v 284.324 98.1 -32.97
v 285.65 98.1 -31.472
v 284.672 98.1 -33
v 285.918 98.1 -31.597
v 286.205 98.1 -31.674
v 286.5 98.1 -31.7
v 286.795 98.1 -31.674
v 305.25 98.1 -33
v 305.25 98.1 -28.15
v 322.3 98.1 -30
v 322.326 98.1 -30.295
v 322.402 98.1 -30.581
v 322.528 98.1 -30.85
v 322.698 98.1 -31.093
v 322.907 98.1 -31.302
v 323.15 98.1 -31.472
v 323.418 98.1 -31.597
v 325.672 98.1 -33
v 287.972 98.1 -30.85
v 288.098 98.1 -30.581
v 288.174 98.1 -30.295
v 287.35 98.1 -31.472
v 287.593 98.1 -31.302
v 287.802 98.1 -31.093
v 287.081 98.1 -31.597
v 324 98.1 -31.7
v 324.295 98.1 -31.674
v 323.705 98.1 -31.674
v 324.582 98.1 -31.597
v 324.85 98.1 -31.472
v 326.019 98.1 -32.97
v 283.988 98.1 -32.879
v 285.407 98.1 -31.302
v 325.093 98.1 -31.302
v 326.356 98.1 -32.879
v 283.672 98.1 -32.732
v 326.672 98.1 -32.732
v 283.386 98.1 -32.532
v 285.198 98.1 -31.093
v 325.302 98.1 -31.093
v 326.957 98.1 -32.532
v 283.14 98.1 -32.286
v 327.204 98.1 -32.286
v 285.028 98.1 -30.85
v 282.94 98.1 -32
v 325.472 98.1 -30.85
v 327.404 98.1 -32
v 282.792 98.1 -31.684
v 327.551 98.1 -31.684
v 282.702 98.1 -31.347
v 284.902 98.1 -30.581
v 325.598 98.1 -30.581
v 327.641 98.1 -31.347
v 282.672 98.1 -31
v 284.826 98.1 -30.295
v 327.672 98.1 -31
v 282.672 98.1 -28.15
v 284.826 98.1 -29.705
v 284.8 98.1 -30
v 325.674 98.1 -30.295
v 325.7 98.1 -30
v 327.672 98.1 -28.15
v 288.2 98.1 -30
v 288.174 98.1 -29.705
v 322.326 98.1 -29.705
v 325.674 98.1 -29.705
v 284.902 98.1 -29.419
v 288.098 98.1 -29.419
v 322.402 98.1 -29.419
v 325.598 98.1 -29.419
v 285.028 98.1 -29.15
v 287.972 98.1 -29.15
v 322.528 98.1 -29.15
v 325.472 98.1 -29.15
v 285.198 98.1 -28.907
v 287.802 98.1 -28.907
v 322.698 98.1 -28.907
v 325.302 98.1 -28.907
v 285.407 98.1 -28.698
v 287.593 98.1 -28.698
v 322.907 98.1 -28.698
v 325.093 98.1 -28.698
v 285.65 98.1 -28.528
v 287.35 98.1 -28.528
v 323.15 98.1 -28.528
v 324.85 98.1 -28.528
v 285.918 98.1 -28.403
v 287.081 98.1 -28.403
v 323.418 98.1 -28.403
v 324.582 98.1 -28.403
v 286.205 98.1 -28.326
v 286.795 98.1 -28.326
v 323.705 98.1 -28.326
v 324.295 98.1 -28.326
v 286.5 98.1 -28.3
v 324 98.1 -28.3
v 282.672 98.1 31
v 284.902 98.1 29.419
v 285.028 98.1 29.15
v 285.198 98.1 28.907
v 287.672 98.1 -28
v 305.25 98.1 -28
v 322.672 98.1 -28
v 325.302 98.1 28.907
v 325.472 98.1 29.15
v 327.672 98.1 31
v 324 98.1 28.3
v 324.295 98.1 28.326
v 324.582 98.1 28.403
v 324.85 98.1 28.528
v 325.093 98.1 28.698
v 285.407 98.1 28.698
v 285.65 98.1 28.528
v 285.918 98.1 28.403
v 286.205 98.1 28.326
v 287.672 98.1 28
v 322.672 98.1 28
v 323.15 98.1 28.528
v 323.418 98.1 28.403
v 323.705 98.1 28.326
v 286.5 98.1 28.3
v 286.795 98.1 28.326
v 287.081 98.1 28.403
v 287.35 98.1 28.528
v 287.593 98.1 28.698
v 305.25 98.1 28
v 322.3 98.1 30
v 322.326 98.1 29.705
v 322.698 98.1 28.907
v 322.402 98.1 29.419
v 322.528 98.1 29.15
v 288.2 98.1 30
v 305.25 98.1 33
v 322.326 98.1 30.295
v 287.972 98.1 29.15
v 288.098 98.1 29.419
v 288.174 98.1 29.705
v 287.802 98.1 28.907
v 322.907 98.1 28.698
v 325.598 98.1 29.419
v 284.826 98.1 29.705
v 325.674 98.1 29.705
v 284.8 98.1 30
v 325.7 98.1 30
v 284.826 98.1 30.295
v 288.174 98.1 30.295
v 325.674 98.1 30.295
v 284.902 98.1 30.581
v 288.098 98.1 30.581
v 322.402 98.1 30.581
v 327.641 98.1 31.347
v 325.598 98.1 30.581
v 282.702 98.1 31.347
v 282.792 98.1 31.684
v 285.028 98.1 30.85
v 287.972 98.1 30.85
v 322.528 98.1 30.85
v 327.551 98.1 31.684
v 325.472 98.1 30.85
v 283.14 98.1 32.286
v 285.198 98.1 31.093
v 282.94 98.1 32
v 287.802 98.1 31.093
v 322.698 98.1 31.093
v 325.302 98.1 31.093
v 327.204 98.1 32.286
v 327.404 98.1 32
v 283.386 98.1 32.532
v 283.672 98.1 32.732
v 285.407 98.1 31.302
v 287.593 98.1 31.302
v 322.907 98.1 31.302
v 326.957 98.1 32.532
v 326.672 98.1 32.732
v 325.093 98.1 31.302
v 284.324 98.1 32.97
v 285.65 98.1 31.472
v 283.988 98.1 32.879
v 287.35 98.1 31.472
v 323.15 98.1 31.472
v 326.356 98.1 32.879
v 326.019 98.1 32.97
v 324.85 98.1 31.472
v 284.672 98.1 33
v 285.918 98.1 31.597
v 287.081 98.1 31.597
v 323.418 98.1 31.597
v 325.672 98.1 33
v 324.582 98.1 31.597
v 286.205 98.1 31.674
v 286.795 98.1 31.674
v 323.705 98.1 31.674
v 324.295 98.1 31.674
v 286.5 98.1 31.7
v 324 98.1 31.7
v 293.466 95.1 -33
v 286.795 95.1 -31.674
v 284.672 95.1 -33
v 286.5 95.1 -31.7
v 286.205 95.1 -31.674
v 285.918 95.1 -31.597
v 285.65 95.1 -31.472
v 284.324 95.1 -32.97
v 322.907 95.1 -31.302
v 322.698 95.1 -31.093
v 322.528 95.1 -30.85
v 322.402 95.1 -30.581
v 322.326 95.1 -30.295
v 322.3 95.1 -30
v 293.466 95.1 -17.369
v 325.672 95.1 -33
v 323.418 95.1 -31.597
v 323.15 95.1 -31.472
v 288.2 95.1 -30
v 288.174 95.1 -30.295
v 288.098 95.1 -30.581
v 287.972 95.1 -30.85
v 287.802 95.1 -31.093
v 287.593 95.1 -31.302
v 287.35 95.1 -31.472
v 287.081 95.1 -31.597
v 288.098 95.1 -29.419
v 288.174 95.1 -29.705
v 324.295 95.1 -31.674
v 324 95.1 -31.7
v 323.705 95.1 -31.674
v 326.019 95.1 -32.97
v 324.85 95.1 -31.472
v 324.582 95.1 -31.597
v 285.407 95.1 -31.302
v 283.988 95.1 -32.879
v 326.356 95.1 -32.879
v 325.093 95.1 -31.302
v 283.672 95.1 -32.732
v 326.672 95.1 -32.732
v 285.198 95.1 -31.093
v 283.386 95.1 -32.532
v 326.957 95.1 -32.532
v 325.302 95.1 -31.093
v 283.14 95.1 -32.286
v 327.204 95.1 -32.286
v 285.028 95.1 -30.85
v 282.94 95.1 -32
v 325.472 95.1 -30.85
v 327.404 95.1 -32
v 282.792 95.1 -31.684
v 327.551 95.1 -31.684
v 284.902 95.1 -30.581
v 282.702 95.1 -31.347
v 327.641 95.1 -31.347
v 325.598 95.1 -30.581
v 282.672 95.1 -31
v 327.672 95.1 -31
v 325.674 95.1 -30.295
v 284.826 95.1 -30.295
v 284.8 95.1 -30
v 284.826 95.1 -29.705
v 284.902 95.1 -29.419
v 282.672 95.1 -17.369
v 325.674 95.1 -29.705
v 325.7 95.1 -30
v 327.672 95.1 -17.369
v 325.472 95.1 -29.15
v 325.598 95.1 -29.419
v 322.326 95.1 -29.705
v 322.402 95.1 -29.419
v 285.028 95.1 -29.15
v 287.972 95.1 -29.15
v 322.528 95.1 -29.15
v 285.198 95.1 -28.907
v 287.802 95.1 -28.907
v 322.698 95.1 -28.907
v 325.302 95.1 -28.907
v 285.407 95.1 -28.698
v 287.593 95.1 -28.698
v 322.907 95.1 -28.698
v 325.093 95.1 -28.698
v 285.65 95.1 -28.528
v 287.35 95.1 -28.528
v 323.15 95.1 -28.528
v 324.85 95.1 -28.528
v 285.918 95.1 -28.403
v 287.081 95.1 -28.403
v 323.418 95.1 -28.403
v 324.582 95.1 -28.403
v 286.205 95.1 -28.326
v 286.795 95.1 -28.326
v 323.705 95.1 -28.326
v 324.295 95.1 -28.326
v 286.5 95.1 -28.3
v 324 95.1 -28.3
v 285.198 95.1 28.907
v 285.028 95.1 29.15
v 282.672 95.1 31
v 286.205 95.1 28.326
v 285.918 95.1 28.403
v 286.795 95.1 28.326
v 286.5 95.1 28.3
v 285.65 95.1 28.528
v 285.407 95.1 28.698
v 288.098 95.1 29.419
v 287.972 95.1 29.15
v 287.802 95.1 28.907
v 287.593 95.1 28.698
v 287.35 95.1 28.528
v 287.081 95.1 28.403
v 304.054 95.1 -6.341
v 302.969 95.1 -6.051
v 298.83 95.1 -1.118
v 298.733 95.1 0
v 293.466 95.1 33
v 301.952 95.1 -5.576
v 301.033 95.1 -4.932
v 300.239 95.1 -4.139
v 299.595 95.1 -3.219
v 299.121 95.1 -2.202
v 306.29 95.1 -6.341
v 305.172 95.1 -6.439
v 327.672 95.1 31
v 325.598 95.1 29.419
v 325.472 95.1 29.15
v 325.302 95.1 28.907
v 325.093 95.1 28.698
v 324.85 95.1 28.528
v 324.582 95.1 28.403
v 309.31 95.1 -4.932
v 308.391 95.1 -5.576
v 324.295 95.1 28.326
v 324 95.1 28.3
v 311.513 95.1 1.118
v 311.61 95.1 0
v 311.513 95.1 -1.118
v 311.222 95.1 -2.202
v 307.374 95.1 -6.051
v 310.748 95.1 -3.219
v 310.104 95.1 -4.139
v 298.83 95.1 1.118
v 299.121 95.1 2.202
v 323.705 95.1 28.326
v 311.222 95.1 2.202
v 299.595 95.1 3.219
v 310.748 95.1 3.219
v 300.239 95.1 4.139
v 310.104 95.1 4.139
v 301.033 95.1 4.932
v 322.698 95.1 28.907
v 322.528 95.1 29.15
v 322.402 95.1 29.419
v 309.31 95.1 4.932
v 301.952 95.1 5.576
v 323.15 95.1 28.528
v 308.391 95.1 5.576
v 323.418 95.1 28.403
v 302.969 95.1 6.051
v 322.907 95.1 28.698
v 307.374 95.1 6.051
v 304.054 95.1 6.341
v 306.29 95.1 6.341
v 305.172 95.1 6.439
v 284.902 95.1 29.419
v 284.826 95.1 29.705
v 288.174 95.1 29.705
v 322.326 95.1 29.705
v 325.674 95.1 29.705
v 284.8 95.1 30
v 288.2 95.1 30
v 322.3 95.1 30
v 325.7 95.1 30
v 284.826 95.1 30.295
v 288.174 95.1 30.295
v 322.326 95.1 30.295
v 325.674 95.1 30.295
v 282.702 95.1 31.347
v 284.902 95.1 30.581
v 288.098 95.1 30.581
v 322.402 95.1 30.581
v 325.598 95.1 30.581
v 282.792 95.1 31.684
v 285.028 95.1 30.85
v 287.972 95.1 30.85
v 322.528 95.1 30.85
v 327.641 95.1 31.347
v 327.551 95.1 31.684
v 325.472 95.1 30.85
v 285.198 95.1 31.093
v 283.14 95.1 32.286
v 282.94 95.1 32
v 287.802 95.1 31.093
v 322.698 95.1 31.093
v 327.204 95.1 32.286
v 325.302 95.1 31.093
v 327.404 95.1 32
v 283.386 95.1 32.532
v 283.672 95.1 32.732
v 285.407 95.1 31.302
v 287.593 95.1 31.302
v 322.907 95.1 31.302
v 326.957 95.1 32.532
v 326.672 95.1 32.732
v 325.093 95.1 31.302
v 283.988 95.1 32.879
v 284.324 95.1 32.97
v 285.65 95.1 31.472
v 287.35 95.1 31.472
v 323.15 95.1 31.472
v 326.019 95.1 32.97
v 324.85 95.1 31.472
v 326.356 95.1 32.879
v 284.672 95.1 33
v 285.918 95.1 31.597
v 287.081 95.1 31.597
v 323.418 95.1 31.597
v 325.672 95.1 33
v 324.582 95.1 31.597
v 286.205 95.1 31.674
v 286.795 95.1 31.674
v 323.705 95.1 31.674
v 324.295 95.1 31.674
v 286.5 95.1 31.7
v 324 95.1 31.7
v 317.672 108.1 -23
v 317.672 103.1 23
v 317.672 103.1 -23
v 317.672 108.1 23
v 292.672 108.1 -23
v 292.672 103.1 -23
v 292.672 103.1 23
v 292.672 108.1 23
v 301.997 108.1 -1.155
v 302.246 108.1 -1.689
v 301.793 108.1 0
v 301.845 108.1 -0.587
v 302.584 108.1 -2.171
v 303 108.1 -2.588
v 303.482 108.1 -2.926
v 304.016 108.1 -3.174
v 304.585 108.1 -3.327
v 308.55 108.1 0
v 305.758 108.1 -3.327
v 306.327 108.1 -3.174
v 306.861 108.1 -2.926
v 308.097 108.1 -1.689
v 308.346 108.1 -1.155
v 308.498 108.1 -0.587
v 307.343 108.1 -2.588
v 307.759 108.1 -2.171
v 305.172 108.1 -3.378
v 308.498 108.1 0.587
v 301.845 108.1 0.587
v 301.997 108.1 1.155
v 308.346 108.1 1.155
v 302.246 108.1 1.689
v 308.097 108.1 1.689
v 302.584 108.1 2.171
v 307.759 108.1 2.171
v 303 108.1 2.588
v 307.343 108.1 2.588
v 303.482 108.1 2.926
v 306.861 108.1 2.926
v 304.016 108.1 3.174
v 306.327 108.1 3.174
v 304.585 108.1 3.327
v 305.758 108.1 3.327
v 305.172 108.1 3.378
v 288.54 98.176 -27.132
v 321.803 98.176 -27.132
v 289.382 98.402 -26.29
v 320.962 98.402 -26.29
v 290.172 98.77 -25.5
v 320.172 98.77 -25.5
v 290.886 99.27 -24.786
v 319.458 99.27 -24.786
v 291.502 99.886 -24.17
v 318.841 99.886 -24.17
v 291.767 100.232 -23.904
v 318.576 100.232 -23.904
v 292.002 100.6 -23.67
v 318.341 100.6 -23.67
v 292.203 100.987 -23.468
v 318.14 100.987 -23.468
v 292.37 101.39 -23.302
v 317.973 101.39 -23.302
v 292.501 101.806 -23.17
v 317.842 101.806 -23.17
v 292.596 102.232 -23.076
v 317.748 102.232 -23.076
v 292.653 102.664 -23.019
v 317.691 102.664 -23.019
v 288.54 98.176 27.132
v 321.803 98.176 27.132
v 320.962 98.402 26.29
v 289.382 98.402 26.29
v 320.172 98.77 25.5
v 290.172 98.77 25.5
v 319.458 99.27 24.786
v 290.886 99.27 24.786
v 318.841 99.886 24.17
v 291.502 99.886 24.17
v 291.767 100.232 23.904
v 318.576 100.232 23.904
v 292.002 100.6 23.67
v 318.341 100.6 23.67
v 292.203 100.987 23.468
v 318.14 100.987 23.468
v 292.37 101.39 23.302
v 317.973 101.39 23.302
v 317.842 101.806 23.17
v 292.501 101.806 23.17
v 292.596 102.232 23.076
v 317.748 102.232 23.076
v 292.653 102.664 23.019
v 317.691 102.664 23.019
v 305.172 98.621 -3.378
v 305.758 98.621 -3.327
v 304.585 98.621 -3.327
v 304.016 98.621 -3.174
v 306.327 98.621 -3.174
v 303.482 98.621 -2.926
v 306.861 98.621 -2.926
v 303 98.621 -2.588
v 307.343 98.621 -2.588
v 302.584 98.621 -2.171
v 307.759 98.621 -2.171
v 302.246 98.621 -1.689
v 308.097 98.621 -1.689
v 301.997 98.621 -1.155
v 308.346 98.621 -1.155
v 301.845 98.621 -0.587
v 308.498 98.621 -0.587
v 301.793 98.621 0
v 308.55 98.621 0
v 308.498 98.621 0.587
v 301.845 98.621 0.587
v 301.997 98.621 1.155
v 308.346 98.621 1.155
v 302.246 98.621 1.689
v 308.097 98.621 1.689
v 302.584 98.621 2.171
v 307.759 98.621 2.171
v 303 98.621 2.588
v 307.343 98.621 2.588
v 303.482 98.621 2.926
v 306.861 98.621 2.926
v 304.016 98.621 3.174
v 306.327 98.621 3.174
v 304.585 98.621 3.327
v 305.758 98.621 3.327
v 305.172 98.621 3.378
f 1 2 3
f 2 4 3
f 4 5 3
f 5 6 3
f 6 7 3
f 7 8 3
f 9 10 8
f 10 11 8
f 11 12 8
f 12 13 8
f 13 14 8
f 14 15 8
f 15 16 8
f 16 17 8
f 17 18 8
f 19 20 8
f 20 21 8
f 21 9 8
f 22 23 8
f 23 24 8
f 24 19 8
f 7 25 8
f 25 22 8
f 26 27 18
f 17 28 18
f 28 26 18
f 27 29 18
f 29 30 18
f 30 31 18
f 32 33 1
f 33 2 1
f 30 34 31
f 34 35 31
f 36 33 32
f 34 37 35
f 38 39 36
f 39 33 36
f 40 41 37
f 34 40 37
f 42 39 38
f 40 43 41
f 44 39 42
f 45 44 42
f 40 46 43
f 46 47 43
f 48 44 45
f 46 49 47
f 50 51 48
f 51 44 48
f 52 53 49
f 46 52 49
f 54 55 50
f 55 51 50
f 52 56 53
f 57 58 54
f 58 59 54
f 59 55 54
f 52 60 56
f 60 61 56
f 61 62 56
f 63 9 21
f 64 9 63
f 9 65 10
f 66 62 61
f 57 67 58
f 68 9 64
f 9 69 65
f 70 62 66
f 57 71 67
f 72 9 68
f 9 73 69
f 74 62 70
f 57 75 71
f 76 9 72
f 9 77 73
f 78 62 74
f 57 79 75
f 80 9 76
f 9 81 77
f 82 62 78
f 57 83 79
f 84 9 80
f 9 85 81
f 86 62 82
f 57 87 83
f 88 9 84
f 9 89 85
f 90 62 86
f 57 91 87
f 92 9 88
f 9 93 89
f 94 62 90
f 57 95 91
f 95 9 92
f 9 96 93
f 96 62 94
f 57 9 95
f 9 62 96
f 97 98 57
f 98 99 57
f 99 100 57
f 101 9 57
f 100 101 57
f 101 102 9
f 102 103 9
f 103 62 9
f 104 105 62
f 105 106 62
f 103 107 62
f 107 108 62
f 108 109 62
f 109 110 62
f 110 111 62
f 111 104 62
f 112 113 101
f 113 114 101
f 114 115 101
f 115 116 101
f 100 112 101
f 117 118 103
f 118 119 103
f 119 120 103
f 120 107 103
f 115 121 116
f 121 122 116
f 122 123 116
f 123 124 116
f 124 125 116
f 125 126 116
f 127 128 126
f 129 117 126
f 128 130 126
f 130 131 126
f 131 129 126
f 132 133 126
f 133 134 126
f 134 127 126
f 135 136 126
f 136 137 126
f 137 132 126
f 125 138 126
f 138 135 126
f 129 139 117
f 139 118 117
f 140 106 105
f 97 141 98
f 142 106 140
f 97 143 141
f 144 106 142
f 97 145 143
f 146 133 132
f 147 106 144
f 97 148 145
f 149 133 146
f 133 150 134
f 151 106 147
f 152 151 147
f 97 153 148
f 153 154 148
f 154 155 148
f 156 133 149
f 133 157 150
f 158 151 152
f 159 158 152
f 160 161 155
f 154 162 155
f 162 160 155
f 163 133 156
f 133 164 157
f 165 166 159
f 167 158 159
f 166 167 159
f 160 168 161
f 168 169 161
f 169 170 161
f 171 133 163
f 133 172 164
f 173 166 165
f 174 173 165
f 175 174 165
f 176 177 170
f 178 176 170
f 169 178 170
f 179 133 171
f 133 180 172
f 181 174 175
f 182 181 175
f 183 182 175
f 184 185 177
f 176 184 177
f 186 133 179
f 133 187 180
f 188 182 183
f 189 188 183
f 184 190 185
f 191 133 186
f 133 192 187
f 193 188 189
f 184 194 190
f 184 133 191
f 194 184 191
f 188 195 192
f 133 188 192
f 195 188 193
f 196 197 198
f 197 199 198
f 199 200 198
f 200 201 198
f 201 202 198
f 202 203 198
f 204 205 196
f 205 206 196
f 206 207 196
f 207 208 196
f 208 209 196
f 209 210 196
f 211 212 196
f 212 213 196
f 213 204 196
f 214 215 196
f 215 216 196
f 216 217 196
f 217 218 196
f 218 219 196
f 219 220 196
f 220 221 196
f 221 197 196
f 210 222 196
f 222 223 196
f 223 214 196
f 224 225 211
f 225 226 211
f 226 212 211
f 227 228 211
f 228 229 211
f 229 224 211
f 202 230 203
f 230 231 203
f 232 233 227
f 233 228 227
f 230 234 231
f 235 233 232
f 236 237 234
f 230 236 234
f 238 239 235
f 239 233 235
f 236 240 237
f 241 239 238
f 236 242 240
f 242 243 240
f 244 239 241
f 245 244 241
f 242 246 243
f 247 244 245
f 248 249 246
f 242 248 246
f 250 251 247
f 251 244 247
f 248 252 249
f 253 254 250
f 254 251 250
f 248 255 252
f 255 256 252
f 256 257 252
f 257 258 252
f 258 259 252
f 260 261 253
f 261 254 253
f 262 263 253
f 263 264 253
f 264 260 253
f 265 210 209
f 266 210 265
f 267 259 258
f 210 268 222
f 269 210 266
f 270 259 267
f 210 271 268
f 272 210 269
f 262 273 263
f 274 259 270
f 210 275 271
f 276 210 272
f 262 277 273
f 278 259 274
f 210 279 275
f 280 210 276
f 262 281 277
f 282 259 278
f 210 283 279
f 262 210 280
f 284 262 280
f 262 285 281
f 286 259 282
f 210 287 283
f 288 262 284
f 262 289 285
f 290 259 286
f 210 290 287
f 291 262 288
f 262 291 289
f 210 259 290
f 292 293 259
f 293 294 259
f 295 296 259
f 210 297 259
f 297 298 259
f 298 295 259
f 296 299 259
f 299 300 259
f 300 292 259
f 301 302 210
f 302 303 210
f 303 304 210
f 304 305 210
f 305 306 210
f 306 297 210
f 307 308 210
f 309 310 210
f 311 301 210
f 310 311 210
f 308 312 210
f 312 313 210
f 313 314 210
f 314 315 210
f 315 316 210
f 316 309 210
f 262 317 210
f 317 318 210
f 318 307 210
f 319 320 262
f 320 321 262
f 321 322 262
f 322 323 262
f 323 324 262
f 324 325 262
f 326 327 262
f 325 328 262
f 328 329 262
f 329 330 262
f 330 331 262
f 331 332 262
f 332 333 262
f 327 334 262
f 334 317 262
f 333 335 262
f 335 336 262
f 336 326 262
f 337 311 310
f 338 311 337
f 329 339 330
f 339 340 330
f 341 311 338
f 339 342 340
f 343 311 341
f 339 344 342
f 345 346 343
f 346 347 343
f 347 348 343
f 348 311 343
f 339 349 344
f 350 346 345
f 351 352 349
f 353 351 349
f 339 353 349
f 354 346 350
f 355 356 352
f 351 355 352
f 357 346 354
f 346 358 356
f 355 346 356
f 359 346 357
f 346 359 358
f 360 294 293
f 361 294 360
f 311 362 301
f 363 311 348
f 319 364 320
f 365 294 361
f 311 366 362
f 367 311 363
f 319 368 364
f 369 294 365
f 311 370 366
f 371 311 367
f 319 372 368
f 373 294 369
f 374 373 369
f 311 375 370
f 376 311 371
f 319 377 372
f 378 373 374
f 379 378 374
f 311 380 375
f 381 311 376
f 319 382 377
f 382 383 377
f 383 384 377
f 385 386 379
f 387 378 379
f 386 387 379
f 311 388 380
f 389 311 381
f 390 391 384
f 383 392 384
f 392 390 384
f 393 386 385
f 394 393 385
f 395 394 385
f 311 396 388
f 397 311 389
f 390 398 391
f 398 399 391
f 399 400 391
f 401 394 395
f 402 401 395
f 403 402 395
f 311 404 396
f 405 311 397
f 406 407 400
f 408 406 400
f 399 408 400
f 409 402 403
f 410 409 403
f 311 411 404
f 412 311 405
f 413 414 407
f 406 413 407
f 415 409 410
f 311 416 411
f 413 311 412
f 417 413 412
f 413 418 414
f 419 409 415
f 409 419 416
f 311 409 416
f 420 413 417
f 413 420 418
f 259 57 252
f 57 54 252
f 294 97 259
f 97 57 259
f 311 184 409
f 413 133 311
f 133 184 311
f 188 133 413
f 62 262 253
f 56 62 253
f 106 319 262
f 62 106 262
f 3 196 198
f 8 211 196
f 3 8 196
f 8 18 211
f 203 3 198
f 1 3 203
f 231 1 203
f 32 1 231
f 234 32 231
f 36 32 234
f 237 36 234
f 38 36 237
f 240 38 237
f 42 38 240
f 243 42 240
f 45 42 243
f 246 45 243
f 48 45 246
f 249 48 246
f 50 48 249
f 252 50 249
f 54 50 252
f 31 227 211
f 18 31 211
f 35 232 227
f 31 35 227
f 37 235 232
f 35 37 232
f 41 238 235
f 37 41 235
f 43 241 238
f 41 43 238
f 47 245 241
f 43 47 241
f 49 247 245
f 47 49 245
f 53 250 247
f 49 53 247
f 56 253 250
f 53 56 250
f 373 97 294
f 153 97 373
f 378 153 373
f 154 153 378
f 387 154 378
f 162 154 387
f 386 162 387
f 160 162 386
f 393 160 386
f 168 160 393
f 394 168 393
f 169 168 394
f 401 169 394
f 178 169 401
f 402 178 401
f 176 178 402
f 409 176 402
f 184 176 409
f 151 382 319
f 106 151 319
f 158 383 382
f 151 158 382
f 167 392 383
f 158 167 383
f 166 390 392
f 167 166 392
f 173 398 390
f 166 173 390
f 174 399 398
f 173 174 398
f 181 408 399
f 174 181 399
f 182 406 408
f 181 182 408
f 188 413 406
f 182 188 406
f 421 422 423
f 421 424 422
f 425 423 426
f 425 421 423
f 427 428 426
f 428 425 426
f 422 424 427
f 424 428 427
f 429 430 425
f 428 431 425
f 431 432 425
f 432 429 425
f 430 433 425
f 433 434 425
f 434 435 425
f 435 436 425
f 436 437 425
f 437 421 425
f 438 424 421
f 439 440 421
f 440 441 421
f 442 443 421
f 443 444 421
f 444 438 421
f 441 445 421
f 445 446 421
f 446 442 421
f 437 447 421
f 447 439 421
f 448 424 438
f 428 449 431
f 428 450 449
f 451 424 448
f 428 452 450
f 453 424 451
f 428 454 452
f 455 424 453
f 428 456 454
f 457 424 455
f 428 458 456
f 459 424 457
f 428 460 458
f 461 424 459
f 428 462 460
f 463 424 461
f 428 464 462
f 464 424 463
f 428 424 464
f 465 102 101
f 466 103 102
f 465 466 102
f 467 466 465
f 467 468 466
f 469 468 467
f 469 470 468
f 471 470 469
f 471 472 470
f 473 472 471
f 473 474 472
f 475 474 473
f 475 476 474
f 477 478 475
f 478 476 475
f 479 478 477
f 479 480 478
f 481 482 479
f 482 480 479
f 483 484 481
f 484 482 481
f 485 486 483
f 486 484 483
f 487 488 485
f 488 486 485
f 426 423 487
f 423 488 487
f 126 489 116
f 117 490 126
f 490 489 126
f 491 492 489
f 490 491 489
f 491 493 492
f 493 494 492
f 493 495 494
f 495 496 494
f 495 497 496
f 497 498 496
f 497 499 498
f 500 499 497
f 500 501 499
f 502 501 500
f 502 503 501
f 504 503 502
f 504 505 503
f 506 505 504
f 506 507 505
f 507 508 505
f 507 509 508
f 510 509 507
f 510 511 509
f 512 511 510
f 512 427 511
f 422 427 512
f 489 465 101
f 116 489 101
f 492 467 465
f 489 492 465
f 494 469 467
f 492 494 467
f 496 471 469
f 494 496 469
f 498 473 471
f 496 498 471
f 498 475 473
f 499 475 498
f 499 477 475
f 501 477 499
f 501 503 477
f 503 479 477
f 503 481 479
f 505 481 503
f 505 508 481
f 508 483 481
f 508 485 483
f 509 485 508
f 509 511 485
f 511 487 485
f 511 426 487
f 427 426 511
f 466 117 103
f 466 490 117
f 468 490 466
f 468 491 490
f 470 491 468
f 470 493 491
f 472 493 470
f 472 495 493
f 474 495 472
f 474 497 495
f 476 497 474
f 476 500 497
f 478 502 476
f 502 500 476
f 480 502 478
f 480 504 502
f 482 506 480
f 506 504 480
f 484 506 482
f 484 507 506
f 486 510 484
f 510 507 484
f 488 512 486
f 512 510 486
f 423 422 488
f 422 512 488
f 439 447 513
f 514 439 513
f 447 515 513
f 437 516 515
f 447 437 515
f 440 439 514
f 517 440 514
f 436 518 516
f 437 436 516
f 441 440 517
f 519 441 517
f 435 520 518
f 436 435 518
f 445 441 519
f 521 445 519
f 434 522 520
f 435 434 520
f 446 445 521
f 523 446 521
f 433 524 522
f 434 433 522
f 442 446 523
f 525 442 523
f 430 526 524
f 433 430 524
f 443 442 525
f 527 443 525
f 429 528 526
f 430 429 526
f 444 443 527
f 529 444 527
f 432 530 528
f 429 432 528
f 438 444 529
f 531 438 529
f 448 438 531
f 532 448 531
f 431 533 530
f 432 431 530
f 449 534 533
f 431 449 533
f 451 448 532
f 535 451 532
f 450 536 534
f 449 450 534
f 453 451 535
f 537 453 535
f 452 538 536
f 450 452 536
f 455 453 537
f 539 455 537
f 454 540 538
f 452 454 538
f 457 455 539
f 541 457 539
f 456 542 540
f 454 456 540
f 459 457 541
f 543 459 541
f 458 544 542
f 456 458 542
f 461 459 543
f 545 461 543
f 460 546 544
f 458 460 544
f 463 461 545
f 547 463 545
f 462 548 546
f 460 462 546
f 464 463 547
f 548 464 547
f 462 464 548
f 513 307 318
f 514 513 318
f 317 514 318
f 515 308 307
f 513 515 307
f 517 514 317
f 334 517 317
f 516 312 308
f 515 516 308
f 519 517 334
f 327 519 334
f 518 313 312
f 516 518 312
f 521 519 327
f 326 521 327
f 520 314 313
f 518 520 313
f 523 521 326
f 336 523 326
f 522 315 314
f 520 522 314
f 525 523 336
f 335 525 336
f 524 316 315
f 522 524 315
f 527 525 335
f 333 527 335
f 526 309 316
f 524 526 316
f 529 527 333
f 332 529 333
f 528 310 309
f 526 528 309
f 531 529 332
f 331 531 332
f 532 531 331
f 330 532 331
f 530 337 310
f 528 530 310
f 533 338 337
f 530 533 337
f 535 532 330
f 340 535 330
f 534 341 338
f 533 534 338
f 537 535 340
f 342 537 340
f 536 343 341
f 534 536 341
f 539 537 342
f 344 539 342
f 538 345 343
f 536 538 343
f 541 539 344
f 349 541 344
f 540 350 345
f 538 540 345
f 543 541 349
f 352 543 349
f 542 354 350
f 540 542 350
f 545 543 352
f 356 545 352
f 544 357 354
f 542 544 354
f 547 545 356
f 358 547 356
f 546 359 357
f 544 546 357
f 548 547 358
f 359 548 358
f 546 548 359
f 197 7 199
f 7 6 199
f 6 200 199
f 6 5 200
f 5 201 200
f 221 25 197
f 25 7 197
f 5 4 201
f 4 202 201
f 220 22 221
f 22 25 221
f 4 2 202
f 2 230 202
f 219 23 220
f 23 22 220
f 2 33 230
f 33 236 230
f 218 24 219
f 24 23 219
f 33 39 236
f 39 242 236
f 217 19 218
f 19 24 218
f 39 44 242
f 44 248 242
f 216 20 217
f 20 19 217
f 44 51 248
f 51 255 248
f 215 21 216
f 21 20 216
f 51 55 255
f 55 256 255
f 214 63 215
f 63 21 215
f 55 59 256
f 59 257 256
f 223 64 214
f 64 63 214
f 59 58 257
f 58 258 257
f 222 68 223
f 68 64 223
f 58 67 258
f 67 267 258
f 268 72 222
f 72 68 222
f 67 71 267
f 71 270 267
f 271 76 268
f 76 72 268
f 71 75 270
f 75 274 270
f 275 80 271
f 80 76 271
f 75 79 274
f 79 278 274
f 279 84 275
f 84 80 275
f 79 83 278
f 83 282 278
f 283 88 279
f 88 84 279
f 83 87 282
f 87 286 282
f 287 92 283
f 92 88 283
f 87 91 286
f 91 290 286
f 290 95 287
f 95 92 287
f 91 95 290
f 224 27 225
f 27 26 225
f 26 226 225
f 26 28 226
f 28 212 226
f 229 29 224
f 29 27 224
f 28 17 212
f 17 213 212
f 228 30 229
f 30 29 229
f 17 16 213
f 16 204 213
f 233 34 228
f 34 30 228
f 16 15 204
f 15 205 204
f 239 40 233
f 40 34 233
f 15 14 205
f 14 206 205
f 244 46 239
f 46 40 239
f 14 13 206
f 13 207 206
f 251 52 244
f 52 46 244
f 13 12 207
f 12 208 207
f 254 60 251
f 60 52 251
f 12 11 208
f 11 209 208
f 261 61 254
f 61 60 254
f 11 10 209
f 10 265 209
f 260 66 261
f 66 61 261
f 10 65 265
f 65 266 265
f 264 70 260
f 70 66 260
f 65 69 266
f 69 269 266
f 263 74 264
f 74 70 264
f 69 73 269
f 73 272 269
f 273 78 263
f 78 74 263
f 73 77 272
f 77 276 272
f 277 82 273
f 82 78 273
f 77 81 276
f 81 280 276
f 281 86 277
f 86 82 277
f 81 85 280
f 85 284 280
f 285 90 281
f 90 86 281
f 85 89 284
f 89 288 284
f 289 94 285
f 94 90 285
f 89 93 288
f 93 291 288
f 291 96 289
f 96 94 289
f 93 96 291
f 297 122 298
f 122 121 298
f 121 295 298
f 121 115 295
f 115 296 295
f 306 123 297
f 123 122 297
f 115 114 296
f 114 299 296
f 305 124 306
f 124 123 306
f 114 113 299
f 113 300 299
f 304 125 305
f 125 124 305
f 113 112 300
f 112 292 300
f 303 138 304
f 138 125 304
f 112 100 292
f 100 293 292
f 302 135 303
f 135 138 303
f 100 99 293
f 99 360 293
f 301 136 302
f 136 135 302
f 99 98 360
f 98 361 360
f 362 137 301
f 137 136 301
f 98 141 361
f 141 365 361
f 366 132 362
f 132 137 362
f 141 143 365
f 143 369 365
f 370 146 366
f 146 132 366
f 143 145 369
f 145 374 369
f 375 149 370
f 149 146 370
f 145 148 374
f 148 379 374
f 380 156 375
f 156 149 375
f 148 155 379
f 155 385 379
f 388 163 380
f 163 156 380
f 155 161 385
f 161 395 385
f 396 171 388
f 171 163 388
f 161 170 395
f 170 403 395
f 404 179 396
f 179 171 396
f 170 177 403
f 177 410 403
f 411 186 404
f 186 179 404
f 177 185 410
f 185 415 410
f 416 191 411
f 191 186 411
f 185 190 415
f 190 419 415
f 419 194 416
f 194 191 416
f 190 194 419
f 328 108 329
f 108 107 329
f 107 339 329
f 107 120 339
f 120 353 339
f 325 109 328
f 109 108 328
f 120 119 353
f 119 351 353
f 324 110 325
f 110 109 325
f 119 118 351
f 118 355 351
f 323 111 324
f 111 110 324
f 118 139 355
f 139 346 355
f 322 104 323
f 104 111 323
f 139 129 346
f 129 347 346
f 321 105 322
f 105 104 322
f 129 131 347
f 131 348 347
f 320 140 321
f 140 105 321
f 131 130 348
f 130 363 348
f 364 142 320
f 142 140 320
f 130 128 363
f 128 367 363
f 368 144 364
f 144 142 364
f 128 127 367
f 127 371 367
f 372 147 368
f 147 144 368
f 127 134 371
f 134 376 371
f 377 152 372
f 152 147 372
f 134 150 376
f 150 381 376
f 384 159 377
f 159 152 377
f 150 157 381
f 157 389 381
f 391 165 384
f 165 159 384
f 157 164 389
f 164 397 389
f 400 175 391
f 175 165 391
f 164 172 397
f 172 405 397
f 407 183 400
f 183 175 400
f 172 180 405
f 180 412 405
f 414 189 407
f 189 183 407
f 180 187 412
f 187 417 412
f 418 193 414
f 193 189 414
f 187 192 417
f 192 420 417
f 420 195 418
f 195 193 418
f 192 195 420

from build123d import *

# Parameters (mm, degrees)
CROQUIS1_W                                           = 45
CROQUIS1_H                                           = 66
SALIENTE_EXTRUIR1_DEPTH                              = 3
REDONDEO1_R                                          = 2
CROQUIS2_W                                           = 25
CROQUIS2_H                                           = 46
SALIENTE_EXTRUIR2_DEPTH                              = 10
REDONDEO2_R                                          = 5
REDONDEO3_R                                          = 5
AVELLANADO_PARA_TORNILLO_CON_CABEZA_OVAL_D           = 6.7564
AVELLANADO_PARA_TORNILLO_CON_CABEZA_OVAL_CSINK_D     = 12.8778
AVELLANADO_PARA_TORNILLO_CON_CABEZA_OVAL_CSINK_ANGLE = 82
TALADRO_DE_MARGEN_PARA_M31_D                         = 3.4


with BuildPart() as part:
    # Croquis1 → Saliente-Extruir1 (new body)
    with BuildSketch(Plane(origin=(0, 95.1, 0), x_dir=(1, 0, 0), z_dir=(0, 1, 0))):
        with Locations((305.171572875, 0)):
            Rectangle(CROQUIS1_W, CROQUIS1_H)
        with BuildLine():
            ThreePointArc((323.15, 30), (324, 29.15), (324.85, 30))
            ThreePointArc((324.85, 30), (324, 30.85), (323.15, 30))
        make_face(mode=Mode.SUBTRACT)
        with BuildLine():
            ThreePointArc((285.65, 30), (286.5, 29.15), (287.35, 30))
            ThreePointArc((287.35, 30), (286.5, 30.85), (285.65, 30))
        make_face(mode=Mode.SUBTRACT)
        with BuildLine():
            ThreePointArc((285.65, -30), (286.5, -30.85), (287.35, -30))
            ThreePointArc((287.35, -30), (286.5, -29.15), (285.65, -30))
        make_face(mode=Mode.SUBTRACT)
        with BuildLine():
            ThreePointArc((323.15, -30), (324, -30.85), (324.85, -30))
            ThreePointArc((324.85, -30), (324, -29.15), (323.15, -30))
        make_face(mode=Mode.SUBTRACT)
    extrude(amount=SALIENTE_EXTRUIR1_DEPTH)

    # Redondeo1
    redondeo1_edges = [part.edges().sort_by_distance(p)[0] for p in [
        (282.671572875, 96.6, -33),
        (327.671572875, 96.6, -33),
        (327.671572875, 96.6, 33),
        (282.671572875, 96.6, 33),
    ]]
    fillet(redondeo1_edges, radius=REDONDEO1_R)

    # Croquis2 → Saliente-Extruir2 (add)
    with BuildSketch(Plane(origin=(0, 98.1, 0), x_dir=(1, 0, 0), z_dir=(0, 1, 0))):
        with Locations((305.171572875, 0)):
            Rectangle(CROQUIS2_W, CROQUIS2_H)
    extrude(amount=SALIENTE_EXTRUIR2_DEPTH)

    # Redondeo2
    redondeo2_edges = [part.edges().sort_by_distance(p)[0] for p in [
        (305.171572875, 98.1, -23),
        (305.171572875, 98.1, 23),
    ]]
    fillet(redondeo2_edges, radius=REDONDEO2_R)

    # Redondeo3
    redondeo3_edges = [part.edges().sort_by_distance(p)[0] for p in [
        (292.671572875, 98.1, 0),
        (317.671572875, 98.1, 0),
    ]]
    fillet(redondeo3_edges, radius=REDONDEO3_R)

    # Avellanado para tornillo con cabeza ovalada de 1/41 (through all)
    with Locations(Plane(origin=(0, 95.1, 0), x_dir=(-1, 0, 0), z_dir=(0, -1, 0))):
        with Locations((-305.171572875, 0)):
            CounterSinkHole(AVELLANADO_PARA_TORNILLO_CON_CABEZA_OVAL_D / 2, AVELLANADO_PARA_TORNILLO_CON_CABEZA_OVAL_CSINK_D / 2, counter_sink_angle=AVELLANADO_PARA_TORNILLO_CON_CABEZA_OVAL_CSINK_ANGLE)

    # Taladro de margen para M31 (through all)
    with Locations(Plane(origin=(0, 98.1, 0), x_dir=(1, 0, 0), z_dir=(0, 1, 0))):
        with Locations((324, -30), (286.5, -30), (324, 30), (286.5, 30)):
            Hole(TALADRO_DE_MARGEN_PARA_M31_D / 2)


solid = part.part
